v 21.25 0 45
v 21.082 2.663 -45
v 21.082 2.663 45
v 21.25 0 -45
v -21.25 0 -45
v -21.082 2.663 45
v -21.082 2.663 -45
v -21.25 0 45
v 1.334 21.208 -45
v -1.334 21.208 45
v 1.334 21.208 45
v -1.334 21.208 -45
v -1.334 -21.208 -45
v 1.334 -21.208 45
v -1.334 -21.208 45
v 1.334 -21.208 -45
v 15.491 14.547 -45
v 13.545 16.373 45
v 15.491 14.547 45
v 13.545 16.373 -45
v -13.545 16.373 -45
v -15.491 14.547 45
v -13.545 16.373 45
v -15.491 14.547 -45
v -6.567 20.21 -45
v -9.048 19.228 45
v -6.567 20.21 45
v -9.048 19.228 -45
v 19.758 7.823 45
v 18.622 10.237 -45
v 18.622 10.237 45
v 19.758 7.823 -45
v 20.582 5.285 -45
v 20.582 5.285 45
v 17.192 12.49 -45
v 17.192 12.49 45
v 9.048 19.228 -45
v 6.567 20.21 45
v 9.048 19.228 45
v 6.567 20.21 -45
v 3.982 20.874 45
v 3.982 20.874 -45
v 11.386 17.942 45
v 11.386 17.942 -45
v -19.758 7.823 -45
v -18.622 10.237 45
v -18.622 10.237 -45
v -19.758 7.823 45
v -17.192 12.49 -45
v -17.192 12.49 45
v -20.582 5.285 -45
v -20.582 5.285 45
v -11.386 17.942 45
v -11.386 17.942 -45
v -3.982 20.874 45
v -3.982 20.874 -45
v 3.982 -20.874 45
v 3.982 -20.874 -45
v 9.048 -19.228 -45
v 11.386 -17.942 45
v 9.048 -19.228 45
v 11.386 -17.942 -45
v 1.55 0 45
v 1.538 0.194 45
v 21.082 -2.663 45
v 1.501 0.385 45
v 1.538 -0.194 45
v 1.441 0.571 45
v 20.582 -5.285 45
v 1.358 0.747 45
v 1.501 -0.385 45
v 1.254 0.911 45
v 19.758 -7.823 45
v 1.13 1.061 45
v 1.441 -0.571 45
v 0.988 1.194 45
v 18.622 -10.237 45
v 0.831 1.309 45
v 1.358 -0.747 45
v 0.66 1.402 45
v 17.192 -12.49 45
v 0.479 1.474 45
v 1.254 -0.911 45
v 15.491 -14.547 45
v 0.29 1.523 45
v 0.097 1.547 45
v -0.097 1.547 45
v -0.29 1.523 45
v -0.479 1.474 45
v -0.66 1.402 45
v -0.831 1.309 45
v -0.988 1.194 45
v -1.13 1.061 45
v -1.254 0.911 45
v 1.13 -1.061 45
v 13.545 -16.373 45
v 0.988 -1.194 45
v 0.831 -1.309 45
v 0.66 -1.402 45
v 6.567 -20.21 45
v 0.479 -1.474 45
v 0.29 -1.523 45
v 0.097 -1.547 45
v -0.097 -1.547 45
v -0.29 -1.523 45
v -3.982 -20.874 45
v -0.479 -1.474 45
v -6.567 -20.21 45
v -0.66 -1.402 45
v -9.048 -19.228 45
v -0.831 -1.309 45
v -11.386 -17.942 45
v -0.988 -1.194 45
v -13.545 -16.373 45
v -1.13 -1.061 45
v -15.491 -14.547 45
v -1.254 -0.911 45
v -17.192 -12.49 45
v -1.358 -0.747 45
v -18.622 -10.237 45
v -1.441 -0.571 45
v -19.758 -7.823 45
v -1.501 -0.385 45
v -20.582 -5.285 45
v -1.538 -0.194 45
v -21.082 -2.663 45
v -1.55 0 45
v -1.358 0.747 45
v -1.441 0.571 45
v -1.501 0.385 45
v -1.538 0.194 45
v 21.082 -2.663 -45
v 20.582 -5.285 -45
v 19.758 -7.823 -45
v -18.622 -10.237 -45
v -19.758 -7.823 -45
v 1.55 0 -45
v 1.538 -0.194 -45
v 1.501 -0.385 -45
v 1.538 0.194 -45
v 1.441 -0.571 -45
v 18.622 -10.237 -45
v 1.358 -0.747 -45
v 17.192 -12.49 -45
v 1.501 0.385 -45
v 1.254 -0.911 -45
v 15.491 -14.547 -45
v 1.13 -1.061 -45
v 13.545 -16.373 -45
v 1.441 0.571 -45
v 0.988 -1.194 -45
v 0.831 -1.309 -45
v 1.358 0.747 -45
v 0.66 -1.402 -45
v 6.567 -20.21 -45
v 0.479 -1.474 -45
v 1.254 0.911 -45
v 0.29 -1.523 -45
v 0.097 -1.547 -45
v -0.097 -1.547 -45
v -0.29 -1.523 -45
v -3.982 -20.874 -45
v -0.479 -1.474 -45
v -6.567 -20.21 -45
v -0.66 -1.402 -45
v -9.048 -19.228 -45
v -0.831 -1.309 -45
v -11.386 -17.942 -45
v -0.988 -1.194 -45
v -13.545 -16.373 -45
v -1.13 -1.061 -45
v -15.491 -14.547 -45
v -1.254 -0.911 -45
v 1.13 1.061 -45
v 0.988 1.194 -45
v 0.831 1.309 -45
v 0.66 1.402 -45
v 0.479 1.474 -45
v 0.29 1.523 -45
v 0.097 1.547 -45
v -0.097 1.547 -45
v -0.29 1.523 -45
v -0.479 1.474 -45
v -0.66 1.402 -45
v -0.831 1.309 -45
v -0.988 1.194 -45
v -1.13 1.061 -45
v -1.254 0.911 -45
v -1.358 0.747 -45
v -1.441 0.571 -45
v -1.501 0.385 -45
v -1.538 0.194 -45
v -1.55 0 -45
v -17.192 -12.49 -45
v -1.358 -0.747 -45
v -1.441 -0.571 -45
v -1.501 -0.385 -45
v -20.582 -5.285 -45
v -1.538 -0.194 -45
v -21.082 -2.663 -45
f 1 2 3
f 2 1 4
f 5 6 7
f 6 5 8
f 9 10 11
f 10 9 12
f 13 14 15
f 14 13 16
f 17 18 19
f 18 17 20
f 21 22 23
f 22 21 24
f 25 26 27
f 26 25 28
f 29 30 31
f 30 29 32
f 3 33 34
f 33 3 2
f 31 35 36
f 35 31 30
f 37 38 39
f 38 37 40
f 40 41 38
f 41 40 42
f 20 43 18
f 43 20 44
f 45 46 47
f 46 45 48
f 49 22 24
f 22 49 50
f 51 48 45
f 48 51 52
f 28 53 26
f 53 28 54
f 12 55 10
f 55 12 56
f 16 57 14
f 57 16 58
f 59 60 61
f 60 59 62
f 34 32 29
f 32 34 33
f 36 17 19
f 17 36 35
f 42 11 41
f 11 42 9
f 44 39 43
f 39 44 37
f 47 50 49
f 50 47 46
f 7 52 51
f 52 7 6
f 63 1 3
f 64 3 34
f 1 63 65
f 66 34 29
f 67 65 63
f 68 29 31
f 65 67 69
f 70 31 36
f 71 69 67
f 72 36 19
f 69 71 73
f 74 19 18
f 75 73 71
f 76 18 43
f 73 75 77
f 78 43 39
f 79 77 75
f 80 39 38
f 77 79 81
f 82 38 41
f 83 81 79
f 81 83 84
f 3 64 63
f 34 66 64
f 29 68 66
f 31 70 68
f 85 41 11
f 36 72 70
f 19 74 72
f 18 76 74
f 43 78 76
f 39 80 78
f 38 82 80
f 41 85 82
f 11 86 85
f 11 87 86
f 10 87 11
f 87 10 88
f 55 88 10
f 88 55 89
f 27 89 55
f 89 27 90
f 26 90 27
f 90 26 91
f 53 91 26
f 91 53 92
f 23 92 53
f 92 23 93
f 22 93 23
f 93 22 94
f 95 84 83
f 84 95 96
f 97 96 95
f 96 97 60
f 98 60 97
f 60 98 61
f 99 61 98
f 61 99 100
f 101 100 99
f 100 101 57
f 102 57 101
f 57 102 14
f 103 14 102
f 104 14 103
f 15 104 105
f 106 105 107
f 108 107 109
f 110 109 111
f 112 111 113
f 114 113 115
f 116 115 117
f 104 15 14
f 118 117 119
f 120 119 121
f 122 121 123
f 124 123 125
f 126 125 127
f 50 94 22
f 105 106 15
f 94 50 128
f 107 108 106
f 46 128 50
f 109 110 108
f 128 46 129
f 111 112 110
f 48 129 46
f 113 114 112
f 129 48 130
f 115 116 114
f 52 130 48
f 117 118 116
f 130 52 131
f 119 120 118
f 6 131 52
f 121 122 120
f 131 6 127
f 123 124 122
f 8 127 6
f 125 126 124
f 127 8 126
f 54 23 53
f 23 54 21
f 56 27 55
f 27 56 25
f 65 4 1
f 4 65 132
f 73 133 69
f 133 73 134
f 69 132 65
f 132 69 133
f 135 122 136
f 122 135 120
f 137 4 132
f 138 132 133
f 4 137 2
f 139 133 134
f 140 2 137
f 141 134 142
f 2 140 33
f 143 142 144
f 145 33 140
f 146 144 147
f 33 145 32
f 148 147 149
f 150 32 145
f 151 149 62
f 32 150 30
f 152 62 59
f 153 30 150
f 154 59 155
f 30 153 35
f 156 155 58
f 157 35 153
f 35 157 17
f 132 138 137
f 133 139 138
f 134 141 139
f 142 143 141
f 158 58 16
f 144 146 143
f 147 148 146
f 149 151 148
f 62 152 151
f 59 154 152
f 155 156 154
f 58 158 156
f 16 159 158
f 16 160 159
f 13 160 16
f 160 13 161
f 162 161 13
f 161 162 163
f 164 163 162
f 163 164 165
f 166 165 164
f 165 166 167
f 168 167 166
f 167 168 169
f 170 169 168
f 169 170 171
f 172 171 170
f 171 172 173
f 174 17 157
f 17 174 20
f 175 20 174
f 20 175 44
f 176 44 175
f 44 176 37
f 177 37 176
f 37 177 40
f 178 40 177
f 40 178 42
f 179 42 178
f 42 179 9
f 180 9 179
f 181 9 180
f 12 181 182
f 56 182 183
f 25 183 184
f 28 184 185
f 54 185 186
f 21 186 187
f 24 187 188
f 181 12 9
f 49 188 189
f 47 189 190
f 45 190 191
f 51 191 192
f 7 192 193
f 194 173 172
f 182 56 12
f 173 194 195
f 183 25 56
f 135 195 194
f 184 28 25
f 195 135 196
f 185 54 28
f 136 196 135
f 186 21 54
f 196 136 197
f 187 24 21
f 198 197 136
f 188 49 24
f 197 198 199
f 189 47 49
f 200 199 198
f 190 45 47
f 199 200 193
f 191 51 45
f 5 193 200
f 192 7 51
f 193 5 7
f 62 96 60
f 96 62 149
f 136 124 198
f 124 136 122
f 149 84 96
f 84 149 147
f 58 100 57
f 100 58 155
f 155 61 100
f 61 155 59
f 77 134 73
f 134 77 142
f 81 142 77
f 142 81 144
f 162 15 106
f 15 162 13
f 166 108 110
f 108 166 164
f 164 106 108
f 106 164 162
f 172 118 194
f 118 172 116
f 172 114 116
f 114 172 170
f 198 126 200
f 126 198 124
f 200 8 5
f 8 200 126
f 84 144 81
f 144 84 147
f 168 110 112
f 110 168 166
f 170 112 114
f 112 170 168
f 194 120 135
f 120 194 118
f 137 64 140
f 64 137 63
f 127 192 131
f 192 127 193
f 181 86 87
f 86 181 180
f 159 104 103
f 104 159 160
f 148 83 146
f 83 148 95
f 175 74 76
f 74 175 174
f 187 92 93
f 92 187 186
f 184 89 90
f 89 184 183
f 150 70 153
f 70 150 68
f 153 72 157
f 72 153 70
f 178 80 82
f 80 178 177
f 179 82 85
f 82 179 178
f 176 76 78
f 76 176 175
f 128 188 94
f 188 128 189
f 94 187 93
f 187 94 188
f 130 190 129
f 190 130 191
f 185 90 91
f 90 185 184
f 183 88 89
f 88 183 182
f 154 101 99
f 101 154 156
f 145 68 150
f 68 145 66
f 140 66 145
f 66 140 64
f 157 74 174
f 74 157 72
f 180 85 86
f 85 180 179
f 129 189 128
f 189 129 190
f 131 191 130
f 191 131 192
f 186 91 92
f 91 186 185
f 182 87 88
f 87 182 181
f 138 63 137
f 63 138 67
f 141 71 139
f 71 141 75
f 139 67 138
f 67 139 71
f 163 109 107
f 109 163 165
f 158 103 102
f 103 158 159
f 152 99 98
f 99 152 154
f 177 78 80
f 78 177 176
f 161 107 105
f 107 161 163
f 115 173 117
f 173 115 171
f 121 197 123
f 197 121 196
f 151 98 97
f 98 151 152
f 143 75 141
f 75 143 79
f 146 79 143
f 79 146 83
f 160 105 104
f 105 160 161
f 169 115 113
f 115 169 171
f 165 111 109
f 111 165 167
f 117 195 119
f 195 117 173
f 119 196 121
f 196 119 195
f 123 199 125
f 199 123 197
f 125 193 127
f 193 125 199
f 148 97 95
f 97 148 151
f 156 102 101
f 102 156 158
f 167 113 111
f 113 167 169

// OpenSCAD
$fn = 50;


difference() {
	union() {
		translate(v = [0, 0, -45.0000000000]) {
			cylinder(h = 90, r = 21.2500000000);
		}
	}
	union() {
		translate(v = [0, 0, -100.0000000000]) {
			cylinder(h = 200, r = 1.5500000000);
		}
	}
}
